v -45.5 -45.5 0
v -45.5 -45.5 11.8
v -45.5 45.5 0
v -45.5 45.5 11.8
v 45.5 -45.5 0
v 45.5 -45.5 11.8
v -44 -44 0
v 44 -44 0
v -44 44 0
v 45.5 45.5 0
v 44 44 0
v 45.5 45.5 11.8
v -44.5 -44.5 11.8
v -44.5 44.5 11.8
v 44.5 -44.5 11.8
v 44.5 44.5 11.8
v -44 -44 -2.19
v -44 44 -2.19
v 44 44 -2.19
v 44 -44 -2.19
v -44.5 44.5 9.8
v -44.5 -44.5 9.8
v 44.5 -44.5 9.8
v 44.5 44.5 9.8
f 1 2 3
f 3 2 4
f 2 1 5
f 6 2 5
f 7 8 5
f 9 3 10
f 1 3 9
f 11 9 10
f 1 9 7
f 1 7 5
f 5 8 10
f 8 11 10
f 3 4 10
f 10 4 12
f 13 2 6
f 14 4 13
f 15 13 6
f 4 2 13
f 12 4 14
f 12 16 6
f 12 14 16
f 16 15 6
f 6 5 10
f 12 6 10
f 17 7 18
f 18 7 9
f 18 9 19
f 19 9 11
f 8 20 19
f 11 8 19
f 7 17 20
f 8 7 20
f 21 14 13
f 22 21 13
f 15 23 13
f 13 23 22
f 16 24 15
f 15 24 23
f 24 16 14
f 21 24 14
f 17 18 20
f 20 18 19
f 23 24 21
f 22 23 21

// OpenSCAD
$fn=128;
actualLegWidth=88;
legWidthWithSlop=actualLegWidth+1;
thinWallThickness=1;
outerDim=legWidthWithSlop + 2*thinWallThickness;
depressionDepth=2;
heightGain=24/2;
totalHeight=heightGain+depressionDepth;
squareHeight=totalHeight-depressionDepth-0.2;
bottomPartHeight=totalHeight-squareHeight;
echo("legWidthWithSlop=", legWidthWithSlop);
echo("outerDim=", outerDim);
echo("depressionDepth=", depressionDepth);
echo("heightGain=", heightGain);
echo("totalHeight=", totalHeight);
echo("squareHeight=", squareHeight);
echo("bottomPartHeight=", bottomPartHeight);

difference() {

   union() {
        translate([0,0,squareHeight/2]) cube([outerDim, outerDim, squareHeight], center=true);

        translate([0,0,-bottomPartHeight/2+0.01]) cube([actualLegWidth, actualLegWidth, bottomPartHeight], center=true);
    }

    translate([0,0,depressionDepth/2+(squareHeight-depressionDepth)+10/2]) cube([legWidthWithSlop, legWidthWithSlop, depressionDepth+10], center=true);    
}
